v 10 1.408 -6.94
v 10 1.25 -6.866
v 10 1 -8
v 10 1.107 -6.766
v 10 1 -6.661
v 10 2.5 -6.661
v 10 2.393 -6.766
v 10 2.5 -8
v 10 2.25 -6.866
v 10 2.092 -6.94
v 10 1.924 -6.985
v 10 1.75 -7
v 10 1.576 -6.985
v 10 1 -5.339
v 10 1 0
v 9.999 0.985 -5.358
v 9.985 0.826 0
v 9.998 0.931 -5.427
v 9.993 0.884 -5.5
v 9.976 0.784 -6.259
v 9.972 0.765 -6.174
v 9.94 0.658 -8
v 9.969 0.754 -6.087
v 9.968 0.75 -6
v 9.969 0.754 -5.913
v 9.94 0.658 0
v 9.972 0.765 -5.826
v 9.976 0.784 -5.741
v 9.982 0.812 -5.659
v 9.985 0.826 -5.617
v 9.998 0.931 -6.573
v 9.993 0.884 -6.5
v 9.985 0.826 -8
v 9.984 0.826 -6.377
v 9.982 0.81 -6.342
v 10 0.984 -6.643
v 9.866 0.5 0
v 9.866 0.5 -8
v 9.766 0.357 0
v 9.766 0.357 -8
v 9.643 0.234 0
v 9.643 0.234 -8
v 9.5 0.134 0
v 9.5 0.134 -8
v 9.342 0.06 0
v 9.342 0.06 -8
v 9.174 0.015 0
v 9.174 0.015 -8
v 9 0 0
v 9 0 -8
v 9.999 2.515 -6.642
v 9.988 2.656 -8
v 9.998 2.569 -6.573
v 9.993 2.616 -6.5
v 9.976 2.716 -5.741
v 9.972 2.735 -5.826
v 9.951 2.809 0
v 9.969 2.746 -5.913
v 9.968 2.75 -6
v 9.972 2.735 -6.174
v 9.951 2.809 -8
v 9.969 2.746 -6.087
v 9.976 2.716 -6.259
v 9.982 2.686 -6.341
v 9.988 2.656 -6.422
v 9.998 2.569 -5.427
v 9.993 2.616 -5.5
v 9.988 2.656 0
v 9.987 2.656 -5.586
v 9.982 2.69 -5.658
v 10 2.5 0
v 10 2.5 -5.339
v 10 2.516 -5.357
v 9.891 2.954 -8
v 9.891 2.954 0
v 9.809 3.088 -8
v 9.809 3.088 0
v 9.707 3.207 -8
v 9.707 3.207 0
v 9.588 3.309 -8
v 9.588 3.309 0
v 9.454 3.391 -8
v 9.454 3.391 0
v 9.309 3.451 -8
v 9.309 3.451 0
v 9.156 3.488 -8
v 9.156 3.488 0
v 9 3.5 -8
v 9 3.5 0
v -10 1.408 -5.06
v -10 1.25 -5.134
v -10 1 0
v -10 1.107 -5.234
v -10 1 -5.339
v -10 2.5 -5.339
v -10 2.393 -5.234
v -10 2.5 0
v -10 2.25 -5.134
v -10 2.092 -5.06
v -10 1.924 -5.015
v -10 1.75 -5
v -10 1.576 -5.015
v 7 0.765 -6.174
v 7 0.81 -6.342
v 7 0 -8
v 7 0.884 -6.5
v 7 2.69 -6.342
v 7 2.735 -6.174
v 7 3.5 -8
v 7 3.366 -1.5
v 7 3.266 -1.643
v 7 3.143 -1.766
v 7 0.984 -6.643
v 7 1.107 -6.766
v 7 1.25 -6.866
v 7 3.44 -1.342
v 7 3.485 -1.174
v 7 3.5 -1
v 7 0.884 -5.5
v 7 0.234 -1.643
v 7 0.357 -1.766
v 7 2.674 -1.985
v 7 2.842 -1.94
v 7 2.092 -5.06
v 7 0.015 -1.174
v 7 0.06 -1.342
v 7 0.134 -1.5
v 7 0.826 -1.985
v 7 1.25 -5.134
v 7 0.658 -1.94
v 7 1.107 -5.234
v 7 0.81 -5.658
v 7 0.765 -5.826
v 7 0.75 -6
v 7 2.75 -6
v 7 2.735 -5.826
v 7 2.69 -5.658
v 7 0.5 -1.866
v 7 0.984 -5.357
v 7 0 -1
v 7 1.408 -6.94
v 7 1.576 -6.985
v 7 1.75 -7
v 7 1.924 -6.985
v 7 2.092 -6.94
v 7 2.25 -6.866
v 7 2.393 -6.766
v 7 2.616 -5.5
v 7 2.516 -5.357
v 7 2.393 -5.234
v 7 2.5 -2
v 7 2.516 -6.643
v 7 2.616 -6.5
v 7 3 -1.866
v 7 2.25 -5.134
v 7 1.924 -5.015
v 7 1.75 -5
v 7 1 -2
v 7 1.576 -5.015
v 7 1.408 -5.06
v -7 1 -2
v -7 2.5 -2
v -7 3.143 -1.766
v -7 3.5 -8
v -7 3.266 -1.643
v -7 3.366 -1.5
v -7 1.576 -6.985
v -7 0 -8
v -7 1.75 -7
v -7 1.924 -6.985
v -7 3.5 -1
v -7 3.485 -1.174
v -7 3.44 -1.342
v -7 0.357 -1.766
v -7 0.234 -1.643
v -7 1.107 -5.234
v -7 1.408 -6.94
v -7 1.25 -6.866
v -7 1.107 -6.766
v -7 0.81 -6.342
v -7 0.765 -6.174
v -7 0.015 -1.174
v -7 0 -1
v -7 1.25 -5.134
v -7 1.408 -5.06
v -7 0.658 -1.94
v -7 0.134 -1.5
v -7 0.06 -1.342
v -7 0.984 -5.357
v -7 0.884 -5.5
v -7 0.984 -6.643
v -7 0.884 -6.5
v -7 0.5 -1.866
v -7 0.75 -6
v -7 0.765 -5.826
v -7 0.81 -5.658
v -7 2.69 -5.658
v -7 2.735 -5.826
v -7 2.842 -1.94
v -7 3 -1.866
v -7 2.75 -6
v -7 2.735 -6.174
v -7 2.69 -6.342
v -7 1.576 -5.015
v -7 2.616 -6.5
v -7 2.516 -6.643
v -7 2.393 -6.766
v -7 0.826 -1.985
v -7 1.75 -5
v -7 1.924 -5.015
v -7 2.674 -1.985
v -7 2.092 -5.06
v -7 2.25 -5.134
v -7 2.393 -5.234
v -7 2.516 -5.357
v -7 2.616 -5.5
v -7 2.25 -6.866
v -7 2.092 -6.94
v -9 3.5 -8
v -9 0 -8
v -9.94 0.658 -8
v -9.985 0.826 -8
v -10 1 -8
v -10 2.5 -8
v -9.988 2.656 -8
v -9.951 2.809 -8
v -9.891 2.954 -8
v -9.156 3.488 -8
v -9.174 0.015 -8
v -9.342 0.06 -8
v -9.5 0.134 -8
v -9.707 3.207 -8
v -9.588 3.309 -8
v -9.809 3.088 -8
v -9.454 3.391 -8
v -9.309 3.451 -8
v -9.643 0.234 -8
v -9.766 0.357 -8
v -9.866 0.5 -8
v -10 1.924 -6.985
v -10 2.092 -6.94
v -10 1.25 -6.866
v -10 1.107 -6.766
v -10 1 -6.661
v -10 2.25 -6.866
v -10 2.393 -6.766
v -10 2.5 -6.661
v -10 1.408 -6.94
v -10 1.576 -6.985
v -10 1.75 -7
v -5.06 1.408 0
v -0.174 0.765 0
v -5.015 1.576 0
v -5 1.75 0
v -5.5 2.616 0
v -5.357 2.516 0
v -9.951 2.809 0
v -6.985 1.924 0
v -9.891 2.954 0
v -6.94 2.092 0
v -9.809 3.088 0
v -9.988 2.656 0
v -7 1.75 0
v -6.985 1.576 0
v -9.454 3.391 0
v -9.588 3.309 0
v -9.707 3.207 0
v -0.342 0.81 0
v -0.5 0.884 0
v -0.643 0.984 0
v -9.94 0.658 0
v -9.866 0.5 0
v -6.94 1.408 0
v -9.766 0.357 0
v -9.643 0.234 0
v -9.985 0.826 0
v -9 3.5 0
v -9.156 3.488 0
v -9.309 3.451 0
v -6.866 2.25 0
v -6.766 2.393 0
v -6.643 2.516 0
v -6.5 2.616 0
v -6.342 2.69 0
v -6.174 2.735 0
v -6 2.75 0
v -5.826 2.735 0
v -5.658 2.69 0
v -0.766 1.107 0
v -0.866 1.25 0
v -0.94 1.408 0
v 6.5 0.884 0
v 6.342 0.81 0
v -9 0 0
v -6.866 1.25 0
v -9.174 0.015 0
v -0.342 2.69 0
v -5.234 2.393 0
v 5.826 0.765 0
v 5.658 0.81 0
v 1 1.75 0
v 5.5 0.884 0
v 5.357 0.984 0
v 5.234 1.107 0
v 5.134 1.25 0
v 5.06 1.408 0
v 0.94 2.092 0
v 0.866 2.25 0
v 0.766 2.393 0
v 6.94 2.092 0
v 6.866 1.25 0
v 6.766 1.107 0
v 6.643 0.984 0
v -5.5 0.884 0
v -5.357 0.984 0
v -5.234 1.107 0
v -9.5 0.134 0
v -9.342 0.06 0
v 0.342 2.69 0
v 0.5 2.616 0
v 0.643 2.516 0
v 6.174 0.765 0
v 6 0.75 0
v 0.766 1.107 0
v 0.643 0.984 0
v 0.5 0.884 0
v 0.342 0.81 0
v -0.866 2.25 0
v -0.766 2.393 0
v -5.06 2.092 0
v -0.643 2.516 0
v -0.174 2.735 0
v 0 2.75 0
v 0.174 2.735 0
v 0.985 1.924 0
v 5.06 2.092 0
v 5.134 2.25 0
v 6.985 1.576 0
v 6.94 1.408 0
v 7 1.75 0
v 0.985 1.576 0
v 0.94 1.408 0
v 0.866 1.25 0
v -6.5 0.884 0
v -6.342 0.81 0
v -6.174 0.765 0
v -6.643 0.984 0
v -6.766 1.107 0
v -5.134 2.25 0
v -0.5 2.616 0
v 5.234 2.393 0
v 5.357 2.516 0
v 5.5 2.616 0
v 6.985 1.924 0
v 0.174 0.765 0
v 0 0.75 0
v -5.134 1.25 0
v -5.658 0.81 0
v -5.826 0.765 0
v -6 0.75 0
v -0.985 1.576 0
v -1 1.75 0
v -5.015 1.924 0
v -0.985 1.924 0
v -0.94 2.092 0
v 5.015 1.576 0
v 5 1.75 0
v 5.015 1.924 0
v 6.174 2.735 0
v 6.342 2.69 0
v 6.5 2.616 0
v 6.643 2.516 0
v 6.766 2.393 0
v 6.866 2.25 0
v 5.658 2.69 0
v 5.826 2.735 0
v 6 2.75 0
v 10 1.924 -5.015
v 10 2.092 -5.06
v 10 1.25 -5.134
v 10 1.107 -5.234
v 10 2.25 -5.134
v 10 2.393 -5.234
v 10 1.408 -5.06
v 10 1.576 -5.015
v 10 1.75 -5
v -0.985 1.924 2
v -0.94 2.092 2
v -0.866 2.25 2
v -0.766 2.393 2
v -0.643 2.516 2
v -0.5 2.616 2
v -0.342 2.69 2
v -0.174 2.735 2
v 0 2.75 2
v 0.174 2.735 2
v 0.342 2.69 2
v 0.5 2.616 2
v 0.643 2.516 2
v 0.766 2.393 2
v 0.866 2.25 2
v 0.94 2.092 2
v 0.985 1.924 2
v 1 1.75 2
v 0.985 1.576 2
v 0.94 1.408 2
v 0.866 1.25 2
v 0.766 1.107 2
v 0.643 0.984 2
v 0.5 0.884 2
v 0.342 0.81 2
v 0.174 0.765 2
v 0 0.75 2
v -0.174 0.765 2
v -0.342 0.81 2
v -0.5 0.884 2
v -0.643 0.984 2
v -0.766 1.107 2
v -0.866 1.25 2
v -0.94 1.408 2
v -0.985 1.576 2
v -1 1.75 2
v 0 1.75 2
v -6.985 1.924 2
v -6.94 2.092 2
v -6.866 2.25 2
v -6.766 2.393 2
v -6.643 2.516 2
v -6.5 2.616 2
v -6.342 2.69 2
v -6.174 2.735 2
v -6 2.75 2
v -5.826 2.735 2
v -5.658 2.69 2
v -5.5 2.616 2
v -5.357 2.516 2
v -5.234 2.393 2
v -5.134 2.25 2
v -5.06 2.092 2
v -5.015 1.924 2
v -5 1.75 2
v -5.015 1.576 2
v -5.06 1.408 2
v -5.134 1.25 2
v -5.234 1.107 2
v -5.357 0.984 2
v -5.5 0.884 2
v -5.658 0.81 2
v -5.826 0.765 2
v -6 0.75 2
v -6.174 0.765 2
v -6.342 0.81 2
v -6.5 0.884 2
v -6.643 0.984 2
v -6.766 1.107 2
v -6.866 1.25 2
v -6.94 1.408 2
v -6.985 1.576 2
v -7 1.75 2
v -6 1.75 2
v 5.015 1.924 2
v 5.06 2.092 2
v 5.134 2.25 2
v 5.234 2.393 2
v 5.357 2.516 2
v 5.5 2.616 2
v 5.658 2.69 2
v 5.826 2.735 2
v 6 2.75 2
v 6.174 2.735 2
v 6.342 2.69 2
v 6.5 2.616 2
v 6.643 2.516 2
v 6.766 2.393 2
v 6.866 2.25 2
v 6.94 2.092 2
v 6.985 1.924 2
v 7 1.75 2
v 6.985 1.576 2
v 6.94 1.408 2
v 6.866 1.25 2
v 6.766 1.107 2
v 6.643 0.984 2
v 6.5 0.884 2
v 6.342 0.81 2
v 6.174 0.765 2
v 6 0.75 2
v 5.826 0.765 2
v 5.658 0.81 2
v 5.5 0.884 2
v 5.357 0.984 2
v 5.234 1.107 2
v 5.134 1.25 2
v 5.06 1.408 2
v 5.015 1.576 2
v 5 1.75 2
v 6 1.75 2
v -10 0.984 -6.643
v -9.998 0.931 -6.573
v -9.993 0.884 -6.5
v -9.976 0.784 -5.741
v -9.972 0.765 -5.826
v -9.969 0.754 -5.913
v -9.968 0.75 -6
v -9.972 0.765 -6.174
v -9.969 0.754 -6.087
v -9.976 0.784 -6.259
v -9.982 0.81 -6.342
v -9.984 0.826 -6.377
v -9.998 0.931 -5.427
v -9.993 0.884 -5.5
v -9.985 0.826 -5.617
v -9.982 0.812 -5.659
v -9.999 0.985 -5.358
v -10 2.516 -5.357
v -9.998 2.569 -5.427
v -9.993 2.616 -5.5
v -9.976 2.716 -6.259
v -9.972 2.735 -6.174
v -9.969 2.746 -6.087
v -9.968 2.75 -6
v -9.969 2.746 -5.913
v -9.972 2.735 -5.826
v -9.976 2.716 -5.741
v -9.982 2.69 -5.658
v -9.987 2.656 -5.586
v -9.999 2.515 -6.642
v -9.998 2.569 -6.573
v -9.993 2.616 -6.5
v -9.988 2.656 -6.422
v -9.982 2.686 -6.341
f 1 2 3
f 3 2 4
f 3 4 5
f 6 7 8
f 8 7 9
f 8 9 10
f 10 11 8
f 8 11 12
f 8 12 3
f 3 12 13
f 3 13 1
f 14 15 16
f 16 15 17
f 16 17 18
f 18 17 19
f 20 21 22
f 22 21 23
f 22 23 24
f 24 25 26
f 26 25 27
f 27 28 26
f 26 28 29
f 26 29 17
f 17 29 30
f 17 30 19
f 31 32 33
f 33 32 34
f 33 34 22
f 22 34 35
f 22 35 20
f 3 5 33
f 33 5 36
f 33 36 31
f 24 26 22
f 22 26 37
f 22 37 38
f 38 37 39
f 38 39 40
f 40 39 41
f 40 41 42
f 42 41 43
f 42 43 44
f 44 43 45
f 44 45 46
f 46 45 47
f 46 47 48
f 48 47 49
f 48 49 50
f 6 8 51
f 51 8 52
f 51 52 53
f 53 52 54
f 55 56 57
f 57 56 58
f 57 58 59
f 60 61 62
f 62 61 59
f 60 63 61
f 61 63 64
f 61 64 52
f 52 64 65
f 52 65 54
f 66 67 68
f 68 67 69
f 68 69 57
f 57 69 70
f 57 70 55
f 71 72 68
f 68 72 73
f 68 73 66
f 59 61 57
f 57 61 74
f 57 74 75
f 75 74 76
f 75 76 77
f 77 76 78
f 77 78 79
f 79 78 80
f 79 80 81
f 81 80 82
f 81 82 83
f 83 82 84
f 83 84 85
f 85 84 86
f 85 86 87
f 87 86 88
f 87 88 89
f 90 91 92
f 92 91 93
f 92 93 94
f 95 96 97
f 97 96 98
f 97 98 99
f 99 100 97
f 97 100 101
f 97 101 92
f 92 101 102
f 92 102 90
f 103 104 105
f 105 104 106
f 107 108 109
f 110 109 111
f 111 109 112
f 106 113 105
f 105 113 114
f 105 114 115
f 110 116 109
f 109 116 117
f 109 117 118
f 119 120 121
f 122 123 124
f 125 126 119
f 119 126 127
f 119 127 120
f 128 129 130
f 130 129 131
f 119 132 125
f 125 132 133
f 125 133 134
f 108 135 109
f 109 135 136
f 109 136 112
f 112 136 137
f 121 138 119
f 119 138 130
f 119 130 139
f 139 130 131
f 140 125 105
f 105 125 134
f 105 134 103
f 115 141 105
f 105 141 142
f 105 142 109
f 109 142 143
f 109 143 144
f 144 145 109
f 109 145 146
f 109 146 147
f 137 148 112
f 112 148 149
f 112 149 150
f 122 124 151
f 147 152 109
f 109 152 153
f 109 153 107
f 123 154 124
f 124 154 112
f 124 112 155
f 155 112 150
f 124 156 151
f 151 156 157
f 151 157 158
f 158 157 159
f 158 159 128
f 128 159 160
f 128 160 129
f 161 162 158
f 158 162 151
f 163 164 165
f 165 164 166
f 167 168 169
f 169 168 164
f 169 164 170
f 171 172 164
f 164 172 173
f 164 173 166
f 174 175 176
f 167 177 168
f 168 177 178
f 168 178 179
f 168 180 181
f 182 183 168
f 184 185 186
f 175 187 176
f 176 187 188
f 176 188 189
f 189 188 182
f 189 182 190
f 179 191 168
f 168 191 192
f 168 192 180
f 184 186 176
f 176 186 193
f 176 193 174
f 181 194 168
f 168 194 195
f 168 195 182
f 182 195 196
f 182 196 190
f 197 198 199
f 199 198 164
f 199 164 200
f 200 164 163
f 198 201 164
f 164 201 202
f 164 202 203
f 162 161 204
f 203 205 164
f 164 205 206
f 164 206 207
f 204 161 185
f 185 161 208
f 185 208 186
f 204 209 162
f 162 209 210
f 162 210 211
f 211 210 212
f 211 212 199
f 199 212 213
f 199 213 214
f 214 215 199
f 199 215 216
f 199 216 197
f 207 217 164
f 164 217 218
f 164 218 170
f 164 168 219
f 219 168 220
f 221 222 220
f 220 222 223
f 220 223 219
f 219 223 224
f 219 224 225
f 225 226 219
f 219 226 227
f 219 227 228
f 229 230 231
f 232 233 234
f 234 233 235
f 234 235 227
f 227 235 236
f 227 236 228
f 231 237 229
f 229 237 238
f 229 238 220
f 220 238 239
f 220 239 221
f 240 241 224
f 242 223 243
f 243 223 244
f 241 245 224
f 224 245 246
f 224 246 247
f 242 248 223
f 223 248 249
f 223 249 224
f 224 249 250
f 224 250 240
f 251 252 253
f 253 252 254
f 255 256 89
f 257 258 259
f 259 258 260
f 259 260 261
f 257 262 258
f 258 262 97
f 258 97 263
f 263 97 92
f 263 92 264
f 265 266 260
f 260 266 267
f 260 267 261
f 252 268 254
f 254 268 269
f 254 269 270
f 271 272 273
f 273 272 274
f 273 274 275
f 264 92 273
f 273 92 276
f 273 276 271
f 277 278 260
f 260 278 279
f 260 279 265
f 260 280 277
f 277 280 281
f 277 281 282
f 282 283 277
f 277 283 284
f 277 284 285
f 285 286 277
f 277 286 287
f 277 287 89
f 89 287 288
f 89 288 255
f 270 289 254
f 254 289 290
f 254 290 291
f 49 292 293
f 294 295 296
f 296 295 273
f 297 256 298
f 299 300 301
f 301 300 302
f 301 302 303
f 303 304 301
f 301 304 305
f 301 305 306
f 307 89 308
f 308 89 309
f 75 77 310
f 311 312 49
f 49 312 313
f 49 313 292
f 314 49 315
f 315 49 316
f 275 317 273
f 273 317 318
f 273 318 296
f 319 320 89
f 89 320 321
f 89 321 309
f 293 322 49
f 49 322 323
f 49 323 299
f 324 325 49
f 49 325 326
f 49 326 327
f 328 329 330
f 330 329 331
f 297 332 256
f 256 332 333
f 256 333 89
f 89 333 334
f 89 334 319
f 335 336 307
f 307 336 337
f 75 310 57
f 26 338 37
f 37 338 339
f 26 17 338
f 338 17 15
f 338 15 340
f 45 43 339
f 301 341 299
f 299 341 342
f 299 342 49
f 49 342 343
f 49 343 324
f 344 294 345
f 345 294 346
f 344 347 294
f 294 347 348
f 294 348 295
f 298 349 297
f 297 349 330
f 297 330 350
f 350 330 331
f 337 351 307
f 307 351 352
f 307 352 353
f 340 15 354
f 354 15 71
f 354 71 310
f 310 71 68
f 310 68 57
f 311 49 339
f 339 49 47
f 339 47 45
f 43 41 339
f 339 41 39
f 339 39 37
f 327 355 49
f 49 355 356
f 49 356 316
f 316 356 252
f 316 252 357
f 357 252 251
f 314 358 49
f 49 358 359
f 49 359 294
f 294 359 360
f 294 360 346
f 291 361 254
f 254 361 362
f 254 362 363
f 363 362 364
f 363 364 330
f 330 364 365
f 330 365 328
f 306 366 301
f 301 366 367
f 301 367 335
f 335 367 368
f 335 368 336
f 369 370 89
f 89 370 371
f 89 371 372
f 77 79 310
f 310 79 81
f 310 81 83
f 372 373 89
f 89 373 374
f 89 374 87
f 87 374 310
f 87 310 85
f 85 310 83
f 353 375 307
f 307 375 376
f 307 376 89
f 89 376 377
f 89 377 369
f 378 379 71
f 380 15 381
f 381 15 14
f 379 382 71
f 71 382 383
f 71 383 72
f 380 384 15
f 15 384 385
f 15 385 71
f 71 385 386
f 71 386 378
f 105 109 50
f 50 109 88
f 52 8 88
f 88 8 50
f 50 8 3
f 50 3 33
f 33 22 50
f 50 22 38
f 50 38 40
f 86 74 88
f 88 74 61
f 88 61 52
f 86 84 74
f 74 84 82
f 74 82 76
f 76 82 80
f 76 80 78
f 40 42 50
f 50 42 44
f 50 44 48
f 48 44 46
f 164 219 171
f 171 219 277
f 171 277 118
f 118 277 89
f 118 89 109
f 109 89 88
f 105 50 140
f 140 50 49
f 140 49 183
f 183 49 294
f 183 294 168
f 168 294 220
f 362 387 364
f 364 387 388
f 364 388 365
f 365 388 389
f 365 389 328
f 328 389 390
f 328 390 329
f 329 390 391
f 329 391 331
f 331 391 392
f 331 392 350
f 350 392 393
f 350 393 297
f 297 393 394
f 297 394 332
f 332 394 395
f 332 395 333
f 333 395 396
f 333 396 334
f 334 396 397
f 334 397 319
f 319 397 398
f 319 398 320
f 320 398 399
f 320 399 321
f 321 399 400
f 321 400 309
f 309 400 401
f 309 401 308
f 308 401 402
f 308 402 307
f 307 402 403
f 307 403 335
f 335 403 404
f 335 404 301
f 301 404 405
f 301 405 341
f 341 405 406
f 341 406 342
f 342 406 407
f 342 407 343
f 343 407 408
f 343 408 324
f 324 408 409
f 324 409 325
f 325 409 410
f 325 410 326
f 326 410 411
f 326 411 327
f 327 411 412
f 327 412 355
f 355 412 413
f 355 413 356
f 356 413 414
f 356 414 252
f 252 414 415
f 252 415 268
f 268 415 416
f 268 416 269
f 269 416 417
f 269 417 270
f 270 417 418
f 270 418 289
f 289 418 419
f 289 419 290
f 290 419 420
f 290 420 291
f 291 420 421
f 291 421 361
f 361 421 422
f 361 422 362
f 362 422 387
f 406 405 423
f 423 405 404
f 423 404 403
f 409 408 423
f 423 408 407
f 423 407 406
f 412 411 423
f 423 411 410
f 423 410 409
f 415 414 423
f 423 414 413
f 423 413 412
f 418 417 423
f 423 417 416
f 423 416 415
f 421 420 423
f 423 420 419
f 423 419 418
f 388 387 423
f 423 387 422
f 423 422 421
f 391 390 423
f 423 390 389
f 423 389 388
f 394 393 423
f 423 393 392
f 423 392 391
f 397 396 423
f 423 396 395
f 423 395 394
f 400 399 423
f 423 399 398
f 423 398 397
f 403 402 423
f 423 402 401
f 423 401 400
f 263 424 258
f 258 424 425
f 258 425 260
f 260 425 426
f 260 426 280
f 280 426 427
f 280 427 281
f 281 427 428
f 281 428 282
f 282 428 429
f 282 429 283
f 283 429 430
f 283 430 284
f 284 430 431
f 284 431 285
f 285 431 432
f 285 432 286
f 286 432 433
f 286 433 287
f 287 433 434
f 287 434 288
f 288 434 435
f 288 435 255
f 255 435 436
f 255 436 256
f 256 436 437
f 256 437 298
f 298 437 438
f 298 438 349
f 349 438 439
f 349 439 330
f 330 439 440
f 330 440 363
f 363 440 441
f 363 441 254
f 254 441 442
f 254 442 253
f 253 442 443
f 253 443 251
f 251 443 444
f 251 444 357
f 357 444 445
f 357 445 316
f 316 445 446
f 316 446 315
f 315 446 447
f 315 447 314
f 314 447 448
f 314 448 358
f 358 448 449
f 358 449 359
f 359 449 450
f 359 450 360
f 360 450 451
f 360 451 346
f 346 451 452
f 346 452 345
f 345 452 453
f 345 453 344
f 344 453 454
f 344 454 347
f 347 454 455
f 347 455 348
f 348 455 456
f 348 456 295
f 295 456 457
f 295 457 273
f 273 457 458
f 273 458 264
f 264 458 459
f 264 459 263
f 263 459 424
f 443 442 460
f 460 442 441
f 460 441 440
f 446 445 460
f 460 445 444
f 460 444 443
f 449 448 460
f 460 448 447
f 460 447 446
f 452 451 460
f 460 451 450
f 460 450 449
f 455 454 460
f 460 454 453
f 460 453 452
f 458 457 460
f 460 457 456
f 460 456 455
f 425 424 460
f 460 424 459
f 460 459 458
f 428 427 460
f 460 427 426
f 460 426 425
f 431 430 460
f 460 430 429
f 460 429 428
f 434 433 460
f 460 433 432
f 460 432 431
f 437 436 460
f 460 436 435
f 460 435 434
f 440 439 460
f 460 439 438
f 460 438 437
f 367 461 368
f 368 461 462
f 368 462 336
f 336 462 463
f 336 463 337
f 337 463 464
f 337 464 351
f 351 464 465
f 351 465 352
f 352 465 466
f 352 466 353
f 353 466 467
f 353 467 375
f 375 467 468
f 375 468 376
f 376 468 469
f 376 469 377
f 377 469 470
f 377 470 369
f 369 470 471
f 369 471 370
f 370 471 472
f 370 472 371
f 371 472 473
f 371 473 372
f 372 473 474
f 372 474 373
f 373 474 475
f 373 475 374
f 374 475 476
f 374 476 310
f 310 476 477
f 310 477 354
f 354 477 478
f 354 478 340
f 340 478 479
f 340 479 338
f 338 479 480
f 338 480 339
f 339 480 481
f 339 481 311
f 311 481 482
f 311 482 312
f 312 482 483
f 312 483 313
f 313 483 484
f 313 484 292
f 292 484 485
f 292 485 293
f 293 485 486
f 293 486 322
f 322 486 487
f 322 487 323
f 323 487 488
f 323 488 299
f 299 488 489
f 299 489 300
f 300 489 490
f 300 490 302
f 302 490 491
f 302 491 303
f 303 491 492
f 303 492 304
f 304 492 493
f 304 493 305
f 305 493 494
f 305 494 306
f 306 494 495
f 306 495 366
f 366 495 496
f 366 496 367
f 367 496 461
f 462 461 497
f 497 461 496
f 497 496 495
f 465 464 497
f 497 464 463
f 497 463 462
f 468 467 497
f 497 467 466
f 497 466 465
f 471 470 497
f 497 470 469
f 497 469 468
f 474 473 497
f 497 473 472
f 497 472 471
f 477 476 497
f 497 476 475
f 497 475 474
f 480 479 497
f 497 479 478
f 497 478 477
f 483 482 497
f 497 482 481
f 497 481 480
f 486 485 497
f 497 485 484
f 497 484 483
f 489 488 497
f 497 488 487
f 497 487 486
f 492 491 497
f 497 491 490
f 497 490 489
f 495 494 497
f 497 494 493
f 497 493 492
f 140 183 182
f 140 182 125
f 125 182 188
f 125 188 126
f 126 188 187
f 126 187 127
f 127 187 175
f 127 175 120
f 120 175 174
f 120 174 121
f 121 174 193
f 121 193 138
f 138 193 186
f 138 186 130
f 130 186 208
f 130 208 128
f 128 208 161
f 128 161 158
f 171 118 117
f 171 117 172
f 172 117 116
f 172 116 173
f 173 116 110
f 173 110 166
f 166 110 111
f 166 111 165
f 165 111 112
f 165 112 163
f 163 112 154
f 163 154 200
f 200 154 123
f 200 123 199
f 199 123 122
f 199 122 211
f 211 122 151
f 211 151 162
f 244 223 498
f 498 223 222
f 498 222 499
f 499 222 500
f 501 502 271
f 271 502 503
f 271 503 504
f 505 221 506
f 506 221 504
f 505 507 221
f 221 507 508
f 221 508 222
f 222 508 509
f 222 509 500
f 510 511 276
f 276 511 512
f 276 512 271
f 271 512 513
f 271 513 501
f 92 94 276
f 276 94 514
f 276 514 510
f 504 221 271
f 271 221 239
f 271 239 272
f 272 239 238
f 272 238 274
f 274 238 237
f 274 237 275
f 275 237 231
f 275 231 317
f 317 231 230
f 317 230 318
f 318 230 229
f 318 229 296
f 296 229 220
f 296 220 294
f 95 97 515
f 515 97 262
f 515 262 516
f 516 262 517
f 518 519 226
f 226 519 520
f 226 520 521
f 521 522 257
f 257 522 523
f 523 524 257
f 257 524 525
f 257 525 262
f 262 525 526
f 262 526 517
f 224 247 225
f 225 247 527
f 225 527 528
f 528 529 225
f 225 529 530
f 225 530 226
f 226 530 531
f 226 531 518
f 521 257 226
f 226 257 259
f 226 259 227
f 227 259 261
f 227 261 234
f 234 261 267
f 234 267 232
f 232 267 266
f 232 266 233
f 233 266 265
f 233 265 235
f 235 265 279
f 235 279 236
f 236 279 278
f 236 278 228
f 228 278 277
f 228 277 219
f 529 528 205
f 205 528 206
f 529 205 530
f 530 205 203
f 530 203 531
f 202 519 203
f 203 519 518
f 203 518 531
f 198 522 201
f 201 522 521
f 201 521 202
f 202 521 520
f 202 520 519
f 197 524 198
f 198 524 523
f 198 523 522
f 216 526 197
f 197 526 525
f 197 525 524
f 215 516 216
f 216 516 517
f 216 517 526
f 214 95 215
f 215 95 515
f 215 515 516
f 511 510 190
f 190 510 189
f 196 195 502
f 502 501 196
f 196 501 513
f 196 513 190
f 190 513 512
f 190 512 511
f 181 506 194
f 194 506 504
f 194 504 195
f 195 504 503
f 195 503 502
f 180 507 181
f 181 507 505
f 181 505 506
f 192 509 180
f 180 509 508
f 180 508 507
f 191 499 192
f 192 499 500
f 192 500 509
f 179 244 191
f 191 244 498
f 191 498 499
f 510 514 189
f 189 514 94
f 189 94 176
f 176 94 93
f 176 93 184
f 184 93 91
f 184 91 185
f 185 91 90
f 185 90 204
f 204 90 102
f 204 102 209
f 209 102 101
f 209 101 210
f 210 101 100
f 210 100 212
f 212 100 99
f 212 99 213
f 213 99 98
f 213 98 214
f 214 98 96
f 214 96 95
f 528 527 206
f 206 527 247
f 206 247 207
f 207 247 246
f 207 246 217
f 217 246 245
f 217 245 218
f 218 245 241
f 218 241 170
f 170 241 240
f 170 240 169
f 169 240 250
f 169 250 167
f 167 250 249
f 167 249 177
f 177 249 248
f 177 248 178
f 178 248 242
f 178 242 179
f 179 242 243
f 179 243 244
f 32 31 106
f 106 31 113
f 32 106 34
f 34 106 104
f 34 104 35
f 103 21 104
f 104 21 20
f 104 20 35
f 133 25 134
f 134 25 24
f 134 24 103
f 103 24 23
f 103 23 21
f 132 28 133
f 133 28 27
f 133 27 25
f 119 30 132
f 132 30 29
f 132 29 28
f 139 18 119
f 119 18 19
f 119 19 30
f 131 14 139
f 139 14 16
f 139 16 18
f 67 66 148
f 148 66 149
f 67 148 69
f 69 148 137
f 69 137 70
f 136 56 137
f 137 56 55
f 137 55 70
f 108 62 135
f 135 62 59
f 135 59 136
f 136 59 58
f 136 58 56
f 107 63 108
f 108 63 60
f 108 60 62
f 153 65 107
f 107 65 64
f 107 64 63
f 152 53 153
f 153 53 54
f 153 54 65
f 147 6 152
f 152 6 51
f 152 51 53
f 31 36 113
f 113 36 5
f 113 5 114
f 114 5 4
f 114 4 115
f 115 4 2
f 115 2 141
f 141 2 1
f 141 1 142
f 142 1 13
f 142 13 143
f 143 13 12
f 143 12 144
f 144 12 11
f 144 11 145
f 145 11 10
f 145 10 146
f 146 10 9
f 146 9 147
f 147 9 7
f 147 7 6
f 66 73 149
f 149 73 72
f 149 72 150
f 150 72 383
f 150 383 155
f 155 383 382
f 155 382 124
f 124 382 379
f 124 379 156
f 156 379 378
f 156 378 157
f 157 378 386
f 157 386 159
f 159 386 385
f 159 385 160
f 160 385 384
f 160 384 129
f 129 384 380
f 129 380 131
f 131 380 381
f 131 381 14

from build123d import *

# Parameters (mm, degrees)
SALIENTE_EXTRUIR1_DEPTH = 3.5
CROQUIS2_R              = 1
SALIENTE_EXTRUIR2_DEPTH = 2
REDONDEO1_R             = 1
CROQUIS3_R              = 1
CORTAR_EXTRUIR1_DEPTH   = 20.111514854


with BuildPart() as part:
    # Croquis1 → Saliente-Extruir1 (new body)
    with BuildSketch(Plane(origin=(0, 0, 0), x_dir=(1, 0, 0), z_dir=(0, 1, 0))):
        Polygon((10, 0), (-10, 0), (-10, 8), (-7, 8), (-7, 2), (7, 2), (7, 8), (10, 8), align=None)
    extrude(amount=SALIENTE_EXTRUIR1_DEPTH)

    # Croquis2 → Saliente-Extruir2 (add)
    with BuildSketch(Plane.XY):
        with Locations(Location((0, 1.75, 0), (0, 0, 180))):
            Circle(CROQUIS2_R)
        with Locations(Location((-6, 1.75, 0), (0, 0, 180))):
            Circle(CROQUIS2_R)
        with Locations(Location((6, 1.75, 0), (0, 0, 180))):
            Circle(CROQUIS2_R)
    extrude(amount=SALIENTE_EXTRUIR2_DEPTH)

    # Redondeo1
    redondeo1_edges = [part.edges().sort_by_distance(p)[0] for p in [
        (0, 0, -2),
        (-10, 3.5, -4),
        (10, 3.5, -4),
        (0, 3.5, -2),
        (10, 0, -4),
        (-10, 0, -4),
    ]]
    fillet(redondeo1_edges, radius=REDONDEO1_R)

    # Croquis3 → Cortar-Extruir1 (cut, through all)
    with BuildSketch(Plane(origin=(-7, 0, 0), x_dir=(0, 0, -1), z_dir=(1, 0, 0))):
        with Locations((6, 1.75)):
            Circle(CROQUIS3_R)
    cortar_extruir1 = extrude(amount=-CORTAR_EXTRUIR1_DEPTH, mode=Mode.SUBTRACT)

    # Simetría3: Cortar-Extruir1 across plane
    add(cortar_extruir1.mirror(Plane(origin=(0, 0, 0), x_dir=(0, 0, 1), z_dir=(1, 0, 0))), mode=Mode.SUBTRACT)


solid = part.part
